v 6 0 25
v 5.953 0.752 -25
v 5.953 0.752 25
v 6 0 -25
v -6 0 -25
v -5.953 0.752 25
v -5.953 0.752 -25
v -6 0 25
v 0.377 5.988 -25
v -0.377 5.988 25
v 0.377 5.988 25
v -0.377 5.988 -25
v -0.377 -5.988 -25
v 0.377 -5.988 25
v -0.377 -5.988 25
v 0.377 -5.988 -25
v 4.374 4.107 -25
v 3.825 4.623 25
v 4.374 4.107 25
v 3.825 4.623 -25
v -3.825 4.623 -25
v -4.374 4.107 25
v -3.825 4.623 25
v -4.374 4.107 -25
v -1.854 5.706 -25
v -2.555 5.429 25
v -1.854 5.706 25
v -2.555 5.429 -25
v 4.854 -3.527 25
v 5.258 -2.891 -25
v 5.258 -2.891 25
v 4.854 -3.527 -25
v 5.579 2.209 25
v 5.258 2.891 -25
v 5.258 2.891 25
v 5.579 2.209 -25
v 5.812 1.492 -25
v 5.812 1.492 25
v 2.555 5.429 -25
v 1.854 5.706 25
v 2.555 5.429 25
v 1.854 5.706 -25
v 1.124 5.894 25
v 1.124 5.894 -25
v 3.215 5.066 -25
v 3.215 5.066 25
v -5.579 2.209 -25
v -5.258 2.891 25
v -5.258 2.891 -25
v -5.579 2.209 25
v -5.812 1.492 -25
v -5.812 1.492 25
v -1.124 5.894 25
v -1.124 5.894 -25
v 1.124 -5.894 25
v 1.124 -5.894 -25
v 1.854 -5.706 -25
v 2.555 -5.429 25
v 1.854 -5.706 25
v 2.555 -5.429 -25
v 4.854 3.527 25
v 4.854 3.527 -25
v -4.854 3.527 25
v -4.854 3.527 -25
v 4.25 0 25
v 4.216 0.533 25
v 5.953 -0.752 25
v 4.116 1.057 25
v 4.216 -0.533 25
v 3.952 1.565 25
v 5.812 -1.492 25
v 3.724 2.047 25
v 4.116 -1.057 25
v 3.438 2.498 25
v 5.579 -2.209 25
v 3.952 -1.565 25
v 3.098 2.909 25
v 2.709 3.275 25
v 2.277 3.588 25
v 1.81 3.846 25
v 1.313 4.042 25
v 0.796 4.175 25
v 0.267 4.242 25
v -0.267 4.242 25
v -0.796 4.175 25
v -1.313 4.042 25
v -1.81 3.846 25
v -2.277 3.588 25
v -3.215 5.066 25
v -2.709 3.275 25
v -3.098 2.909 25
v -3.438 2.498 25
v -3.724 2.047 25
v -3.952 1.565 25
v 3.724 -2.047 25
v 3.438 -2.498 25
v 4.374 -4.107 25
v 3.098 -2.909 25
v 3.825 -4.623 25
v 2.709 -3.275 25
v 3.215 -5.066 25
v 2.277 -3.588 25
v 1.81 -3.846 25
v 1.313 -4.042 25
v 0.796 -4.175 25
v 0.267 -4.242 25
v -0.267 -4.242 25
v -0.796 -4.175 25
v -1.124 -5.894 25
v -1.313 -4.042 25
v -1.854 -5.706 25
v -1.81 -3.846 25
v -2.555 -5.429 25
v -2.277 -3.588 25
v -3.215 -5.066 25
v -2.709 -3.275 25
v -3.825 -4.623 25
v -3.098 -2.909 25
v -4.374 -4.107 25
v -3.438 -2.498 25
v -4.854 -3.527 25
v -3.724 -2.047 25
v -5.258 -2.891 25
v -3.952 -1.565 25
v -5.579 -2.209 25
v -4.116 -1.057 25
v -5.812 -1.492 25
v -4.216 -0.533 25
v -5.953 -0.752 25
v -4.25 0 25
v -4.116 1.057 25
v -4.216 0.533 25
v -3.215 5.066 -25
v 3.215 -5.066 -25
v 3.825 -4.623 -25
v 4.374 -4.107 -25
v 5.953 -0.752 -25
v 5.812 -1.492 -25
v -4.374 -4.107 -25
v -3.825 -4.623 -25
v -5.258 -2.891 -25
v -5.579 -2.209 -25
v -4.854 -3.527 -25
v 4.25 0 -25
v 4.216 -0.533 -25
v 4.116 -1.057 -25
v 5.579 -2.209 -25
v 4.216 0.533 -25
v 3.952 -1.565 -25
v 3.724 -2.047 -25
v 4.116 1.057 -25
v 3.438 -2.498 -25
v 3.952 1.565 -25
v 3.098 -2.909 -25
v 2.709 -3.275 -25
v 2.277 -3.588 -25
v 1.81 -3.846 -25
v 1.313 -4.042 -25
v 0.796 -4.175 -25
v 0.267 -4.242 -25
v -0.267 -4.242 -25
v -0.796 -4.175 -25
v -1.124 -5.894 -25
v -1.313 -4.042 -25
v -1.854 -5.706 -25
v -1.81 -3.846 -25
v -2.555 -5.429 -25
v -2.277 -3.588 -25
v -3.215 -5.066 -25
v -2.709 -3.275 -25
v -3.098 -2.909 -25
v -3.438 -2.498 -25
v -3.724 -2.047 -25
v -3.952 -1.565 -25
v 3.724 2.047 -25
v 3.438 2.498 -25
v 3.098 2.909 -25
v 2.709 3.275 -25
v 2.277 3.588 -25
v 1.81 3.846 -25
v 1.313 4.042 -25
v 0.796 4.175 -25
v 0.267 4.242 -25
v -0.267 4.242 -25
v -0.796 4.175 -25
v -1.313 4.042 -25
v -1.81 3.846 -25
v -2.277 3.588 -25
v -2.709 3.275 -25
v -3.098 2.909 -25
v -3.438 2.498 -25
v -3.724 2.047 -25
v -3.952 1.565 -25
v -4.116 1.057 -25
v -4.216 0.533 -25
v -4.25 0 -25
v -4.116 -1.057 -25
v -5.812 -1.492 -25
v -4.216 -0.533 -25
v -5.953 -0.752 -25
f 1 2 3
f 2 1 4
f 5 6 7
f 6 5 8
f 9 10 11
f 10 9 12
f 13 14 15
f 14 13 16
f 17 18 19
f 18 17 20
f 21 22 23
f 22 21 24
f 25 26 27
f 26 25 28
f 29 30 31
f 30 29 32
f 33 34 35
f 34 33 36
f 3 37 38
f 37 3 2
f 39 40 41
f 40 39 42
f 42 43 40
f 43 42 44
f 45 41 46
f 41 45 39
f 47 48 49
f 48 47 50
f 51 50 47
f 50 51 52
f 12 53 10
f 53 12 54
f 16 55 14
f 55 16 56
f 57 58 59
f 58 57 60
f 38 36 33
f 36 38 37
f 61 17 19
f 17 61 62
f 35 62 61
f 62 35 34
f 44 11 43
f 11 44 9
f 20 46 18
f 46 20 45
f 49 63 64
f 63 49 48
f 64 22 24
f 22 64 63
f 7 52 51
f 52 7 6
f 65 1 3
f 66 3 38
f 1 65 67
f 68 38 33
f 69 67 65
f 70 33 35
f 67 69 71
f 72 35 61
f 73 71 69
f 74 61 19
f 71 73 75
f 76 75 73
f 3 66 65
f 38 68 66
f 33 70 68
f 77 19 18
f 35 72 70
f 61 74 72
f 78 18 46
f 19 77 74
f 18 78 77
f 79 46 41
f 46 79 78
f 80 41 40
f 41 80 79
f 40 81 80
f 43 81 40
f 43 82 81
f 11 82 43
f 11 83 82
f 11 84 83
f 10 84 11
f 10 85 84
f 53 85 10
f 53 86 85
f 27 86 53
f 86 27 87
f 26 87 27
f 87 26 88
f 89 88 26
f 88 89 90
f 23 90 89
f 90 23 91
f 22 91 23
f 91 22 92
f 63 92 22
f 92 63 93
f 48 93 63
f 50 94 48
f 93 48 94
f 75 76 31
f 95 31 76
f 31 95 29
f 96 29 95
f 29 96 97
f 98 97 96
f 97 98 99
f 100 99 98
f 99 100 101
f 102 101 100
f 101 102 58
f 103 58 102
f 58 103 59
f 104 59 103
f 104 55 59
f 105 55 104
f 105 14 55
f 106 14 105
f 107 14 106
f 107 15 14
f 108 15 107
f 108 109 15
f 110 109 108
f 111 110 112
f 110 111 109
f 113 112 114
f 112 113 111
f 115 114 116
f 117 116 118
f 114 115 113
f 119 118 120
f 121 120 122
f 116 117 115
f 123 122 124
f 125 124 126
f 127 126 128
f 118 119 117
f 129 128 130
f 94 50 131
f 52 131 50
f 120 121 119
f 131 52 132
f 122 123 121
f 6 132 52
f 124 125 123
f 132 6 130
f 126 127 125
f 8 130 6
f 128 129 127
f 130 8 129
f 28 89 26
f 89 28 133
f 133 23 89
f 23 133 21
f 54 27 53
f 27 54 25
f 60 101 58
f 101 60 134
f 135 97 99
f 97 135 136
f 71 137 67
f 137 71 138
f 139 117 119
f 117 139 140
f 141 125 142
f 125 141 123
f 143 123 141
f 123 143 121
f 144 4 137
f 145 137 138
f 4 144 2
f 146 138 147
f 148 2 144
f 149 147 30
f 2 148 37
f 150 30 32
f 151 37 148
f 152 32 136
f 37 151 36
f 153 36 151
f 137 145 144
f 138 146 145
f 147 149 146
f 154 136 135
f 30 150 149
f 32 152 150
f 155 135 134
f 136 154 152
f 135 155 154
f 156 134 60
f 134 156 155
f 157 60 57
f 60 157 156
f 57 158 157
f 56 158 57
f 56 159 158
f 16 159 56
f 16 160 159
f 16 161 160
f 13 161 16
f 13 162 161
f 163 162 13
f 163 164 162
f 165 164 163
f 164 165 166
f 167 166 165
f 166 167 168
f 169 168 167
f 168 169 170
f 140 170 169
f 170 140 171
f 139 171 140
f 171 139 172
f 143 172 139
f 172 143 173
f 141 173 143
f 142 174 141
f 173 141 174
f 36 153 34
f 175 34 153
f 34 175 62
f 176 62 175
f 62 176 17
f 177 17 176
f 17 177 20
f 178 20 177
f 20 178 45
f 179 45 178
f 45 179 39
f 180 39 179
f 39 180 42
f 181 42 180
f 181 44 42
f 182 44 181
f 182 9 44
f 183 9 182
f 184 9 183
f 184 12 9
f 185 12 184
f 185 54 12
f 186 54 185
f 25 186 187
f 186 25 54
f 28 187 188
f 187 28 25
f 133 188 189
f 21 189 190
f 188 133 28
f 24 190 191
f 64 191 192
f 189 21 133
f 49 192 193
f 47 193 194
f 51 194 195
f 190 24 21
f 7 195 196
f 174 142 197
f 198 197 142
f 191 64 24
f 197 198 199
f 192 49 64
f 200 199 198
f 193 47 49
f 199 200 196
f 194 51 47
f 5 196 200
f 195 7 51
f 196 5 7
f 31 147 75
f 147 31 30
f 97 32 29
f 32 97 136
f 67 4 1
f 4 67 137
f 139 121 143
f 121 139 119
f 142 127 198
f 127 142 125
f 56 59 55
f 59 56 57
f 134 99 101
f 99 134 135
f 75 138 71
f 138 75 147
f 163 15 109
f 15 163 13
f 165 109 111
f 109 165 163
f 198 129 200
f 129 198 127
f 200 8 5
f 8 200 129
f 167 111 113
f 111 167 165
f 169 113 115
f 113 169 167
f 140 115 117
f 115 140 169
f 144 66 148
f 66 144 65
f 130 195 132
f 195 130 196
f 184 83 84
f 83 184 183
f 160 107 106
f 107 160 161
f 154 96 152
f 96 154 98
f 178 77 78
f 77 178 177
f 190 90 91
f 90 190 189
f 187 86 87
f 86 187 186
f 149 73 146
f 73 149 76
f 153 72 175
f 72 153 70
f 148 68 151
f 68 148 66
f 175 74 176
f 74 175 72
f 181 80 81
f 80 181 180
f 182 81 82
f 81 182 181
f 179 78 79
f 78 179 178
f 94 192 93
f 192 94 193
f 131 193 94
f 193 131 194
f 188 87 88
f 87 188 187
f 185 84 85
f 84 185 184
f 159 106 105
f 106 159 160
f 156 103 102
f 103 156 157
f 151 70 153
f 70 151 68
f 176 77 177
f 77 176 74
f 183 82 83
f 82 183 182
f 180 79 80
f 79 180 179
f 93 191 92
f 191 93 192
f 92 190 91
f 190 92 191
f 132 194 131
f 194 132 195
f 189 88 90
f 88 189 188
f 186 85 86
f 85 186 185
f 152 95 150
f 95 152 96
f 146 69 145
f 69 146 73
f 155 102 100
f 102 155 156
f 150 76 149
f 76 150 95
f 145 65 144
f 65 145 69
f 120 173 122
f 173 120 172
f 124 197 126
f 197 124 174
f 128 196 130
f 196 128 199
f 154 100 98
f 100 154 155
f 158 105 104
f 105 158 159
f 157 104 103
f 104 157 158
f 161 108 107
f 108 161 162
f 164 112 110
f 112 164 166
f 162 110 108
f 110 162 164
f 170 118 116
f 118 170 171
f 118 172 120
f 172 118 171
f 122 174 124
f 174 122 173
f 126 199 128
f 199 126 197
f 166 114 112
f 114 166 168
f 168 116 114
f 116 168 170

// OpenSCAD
$fn = 50;


difference() {
	union() {
		translate(v = [0, 0, -25.0000000000]) {
			cylinder(h = 50, r = 6.0000000000);
		}
	}
	union() {
		translate(v = [0, 0, -100.0000000000]) {
			cylinder(h = 200, r = 4.2500000000);
		}
	}
}
